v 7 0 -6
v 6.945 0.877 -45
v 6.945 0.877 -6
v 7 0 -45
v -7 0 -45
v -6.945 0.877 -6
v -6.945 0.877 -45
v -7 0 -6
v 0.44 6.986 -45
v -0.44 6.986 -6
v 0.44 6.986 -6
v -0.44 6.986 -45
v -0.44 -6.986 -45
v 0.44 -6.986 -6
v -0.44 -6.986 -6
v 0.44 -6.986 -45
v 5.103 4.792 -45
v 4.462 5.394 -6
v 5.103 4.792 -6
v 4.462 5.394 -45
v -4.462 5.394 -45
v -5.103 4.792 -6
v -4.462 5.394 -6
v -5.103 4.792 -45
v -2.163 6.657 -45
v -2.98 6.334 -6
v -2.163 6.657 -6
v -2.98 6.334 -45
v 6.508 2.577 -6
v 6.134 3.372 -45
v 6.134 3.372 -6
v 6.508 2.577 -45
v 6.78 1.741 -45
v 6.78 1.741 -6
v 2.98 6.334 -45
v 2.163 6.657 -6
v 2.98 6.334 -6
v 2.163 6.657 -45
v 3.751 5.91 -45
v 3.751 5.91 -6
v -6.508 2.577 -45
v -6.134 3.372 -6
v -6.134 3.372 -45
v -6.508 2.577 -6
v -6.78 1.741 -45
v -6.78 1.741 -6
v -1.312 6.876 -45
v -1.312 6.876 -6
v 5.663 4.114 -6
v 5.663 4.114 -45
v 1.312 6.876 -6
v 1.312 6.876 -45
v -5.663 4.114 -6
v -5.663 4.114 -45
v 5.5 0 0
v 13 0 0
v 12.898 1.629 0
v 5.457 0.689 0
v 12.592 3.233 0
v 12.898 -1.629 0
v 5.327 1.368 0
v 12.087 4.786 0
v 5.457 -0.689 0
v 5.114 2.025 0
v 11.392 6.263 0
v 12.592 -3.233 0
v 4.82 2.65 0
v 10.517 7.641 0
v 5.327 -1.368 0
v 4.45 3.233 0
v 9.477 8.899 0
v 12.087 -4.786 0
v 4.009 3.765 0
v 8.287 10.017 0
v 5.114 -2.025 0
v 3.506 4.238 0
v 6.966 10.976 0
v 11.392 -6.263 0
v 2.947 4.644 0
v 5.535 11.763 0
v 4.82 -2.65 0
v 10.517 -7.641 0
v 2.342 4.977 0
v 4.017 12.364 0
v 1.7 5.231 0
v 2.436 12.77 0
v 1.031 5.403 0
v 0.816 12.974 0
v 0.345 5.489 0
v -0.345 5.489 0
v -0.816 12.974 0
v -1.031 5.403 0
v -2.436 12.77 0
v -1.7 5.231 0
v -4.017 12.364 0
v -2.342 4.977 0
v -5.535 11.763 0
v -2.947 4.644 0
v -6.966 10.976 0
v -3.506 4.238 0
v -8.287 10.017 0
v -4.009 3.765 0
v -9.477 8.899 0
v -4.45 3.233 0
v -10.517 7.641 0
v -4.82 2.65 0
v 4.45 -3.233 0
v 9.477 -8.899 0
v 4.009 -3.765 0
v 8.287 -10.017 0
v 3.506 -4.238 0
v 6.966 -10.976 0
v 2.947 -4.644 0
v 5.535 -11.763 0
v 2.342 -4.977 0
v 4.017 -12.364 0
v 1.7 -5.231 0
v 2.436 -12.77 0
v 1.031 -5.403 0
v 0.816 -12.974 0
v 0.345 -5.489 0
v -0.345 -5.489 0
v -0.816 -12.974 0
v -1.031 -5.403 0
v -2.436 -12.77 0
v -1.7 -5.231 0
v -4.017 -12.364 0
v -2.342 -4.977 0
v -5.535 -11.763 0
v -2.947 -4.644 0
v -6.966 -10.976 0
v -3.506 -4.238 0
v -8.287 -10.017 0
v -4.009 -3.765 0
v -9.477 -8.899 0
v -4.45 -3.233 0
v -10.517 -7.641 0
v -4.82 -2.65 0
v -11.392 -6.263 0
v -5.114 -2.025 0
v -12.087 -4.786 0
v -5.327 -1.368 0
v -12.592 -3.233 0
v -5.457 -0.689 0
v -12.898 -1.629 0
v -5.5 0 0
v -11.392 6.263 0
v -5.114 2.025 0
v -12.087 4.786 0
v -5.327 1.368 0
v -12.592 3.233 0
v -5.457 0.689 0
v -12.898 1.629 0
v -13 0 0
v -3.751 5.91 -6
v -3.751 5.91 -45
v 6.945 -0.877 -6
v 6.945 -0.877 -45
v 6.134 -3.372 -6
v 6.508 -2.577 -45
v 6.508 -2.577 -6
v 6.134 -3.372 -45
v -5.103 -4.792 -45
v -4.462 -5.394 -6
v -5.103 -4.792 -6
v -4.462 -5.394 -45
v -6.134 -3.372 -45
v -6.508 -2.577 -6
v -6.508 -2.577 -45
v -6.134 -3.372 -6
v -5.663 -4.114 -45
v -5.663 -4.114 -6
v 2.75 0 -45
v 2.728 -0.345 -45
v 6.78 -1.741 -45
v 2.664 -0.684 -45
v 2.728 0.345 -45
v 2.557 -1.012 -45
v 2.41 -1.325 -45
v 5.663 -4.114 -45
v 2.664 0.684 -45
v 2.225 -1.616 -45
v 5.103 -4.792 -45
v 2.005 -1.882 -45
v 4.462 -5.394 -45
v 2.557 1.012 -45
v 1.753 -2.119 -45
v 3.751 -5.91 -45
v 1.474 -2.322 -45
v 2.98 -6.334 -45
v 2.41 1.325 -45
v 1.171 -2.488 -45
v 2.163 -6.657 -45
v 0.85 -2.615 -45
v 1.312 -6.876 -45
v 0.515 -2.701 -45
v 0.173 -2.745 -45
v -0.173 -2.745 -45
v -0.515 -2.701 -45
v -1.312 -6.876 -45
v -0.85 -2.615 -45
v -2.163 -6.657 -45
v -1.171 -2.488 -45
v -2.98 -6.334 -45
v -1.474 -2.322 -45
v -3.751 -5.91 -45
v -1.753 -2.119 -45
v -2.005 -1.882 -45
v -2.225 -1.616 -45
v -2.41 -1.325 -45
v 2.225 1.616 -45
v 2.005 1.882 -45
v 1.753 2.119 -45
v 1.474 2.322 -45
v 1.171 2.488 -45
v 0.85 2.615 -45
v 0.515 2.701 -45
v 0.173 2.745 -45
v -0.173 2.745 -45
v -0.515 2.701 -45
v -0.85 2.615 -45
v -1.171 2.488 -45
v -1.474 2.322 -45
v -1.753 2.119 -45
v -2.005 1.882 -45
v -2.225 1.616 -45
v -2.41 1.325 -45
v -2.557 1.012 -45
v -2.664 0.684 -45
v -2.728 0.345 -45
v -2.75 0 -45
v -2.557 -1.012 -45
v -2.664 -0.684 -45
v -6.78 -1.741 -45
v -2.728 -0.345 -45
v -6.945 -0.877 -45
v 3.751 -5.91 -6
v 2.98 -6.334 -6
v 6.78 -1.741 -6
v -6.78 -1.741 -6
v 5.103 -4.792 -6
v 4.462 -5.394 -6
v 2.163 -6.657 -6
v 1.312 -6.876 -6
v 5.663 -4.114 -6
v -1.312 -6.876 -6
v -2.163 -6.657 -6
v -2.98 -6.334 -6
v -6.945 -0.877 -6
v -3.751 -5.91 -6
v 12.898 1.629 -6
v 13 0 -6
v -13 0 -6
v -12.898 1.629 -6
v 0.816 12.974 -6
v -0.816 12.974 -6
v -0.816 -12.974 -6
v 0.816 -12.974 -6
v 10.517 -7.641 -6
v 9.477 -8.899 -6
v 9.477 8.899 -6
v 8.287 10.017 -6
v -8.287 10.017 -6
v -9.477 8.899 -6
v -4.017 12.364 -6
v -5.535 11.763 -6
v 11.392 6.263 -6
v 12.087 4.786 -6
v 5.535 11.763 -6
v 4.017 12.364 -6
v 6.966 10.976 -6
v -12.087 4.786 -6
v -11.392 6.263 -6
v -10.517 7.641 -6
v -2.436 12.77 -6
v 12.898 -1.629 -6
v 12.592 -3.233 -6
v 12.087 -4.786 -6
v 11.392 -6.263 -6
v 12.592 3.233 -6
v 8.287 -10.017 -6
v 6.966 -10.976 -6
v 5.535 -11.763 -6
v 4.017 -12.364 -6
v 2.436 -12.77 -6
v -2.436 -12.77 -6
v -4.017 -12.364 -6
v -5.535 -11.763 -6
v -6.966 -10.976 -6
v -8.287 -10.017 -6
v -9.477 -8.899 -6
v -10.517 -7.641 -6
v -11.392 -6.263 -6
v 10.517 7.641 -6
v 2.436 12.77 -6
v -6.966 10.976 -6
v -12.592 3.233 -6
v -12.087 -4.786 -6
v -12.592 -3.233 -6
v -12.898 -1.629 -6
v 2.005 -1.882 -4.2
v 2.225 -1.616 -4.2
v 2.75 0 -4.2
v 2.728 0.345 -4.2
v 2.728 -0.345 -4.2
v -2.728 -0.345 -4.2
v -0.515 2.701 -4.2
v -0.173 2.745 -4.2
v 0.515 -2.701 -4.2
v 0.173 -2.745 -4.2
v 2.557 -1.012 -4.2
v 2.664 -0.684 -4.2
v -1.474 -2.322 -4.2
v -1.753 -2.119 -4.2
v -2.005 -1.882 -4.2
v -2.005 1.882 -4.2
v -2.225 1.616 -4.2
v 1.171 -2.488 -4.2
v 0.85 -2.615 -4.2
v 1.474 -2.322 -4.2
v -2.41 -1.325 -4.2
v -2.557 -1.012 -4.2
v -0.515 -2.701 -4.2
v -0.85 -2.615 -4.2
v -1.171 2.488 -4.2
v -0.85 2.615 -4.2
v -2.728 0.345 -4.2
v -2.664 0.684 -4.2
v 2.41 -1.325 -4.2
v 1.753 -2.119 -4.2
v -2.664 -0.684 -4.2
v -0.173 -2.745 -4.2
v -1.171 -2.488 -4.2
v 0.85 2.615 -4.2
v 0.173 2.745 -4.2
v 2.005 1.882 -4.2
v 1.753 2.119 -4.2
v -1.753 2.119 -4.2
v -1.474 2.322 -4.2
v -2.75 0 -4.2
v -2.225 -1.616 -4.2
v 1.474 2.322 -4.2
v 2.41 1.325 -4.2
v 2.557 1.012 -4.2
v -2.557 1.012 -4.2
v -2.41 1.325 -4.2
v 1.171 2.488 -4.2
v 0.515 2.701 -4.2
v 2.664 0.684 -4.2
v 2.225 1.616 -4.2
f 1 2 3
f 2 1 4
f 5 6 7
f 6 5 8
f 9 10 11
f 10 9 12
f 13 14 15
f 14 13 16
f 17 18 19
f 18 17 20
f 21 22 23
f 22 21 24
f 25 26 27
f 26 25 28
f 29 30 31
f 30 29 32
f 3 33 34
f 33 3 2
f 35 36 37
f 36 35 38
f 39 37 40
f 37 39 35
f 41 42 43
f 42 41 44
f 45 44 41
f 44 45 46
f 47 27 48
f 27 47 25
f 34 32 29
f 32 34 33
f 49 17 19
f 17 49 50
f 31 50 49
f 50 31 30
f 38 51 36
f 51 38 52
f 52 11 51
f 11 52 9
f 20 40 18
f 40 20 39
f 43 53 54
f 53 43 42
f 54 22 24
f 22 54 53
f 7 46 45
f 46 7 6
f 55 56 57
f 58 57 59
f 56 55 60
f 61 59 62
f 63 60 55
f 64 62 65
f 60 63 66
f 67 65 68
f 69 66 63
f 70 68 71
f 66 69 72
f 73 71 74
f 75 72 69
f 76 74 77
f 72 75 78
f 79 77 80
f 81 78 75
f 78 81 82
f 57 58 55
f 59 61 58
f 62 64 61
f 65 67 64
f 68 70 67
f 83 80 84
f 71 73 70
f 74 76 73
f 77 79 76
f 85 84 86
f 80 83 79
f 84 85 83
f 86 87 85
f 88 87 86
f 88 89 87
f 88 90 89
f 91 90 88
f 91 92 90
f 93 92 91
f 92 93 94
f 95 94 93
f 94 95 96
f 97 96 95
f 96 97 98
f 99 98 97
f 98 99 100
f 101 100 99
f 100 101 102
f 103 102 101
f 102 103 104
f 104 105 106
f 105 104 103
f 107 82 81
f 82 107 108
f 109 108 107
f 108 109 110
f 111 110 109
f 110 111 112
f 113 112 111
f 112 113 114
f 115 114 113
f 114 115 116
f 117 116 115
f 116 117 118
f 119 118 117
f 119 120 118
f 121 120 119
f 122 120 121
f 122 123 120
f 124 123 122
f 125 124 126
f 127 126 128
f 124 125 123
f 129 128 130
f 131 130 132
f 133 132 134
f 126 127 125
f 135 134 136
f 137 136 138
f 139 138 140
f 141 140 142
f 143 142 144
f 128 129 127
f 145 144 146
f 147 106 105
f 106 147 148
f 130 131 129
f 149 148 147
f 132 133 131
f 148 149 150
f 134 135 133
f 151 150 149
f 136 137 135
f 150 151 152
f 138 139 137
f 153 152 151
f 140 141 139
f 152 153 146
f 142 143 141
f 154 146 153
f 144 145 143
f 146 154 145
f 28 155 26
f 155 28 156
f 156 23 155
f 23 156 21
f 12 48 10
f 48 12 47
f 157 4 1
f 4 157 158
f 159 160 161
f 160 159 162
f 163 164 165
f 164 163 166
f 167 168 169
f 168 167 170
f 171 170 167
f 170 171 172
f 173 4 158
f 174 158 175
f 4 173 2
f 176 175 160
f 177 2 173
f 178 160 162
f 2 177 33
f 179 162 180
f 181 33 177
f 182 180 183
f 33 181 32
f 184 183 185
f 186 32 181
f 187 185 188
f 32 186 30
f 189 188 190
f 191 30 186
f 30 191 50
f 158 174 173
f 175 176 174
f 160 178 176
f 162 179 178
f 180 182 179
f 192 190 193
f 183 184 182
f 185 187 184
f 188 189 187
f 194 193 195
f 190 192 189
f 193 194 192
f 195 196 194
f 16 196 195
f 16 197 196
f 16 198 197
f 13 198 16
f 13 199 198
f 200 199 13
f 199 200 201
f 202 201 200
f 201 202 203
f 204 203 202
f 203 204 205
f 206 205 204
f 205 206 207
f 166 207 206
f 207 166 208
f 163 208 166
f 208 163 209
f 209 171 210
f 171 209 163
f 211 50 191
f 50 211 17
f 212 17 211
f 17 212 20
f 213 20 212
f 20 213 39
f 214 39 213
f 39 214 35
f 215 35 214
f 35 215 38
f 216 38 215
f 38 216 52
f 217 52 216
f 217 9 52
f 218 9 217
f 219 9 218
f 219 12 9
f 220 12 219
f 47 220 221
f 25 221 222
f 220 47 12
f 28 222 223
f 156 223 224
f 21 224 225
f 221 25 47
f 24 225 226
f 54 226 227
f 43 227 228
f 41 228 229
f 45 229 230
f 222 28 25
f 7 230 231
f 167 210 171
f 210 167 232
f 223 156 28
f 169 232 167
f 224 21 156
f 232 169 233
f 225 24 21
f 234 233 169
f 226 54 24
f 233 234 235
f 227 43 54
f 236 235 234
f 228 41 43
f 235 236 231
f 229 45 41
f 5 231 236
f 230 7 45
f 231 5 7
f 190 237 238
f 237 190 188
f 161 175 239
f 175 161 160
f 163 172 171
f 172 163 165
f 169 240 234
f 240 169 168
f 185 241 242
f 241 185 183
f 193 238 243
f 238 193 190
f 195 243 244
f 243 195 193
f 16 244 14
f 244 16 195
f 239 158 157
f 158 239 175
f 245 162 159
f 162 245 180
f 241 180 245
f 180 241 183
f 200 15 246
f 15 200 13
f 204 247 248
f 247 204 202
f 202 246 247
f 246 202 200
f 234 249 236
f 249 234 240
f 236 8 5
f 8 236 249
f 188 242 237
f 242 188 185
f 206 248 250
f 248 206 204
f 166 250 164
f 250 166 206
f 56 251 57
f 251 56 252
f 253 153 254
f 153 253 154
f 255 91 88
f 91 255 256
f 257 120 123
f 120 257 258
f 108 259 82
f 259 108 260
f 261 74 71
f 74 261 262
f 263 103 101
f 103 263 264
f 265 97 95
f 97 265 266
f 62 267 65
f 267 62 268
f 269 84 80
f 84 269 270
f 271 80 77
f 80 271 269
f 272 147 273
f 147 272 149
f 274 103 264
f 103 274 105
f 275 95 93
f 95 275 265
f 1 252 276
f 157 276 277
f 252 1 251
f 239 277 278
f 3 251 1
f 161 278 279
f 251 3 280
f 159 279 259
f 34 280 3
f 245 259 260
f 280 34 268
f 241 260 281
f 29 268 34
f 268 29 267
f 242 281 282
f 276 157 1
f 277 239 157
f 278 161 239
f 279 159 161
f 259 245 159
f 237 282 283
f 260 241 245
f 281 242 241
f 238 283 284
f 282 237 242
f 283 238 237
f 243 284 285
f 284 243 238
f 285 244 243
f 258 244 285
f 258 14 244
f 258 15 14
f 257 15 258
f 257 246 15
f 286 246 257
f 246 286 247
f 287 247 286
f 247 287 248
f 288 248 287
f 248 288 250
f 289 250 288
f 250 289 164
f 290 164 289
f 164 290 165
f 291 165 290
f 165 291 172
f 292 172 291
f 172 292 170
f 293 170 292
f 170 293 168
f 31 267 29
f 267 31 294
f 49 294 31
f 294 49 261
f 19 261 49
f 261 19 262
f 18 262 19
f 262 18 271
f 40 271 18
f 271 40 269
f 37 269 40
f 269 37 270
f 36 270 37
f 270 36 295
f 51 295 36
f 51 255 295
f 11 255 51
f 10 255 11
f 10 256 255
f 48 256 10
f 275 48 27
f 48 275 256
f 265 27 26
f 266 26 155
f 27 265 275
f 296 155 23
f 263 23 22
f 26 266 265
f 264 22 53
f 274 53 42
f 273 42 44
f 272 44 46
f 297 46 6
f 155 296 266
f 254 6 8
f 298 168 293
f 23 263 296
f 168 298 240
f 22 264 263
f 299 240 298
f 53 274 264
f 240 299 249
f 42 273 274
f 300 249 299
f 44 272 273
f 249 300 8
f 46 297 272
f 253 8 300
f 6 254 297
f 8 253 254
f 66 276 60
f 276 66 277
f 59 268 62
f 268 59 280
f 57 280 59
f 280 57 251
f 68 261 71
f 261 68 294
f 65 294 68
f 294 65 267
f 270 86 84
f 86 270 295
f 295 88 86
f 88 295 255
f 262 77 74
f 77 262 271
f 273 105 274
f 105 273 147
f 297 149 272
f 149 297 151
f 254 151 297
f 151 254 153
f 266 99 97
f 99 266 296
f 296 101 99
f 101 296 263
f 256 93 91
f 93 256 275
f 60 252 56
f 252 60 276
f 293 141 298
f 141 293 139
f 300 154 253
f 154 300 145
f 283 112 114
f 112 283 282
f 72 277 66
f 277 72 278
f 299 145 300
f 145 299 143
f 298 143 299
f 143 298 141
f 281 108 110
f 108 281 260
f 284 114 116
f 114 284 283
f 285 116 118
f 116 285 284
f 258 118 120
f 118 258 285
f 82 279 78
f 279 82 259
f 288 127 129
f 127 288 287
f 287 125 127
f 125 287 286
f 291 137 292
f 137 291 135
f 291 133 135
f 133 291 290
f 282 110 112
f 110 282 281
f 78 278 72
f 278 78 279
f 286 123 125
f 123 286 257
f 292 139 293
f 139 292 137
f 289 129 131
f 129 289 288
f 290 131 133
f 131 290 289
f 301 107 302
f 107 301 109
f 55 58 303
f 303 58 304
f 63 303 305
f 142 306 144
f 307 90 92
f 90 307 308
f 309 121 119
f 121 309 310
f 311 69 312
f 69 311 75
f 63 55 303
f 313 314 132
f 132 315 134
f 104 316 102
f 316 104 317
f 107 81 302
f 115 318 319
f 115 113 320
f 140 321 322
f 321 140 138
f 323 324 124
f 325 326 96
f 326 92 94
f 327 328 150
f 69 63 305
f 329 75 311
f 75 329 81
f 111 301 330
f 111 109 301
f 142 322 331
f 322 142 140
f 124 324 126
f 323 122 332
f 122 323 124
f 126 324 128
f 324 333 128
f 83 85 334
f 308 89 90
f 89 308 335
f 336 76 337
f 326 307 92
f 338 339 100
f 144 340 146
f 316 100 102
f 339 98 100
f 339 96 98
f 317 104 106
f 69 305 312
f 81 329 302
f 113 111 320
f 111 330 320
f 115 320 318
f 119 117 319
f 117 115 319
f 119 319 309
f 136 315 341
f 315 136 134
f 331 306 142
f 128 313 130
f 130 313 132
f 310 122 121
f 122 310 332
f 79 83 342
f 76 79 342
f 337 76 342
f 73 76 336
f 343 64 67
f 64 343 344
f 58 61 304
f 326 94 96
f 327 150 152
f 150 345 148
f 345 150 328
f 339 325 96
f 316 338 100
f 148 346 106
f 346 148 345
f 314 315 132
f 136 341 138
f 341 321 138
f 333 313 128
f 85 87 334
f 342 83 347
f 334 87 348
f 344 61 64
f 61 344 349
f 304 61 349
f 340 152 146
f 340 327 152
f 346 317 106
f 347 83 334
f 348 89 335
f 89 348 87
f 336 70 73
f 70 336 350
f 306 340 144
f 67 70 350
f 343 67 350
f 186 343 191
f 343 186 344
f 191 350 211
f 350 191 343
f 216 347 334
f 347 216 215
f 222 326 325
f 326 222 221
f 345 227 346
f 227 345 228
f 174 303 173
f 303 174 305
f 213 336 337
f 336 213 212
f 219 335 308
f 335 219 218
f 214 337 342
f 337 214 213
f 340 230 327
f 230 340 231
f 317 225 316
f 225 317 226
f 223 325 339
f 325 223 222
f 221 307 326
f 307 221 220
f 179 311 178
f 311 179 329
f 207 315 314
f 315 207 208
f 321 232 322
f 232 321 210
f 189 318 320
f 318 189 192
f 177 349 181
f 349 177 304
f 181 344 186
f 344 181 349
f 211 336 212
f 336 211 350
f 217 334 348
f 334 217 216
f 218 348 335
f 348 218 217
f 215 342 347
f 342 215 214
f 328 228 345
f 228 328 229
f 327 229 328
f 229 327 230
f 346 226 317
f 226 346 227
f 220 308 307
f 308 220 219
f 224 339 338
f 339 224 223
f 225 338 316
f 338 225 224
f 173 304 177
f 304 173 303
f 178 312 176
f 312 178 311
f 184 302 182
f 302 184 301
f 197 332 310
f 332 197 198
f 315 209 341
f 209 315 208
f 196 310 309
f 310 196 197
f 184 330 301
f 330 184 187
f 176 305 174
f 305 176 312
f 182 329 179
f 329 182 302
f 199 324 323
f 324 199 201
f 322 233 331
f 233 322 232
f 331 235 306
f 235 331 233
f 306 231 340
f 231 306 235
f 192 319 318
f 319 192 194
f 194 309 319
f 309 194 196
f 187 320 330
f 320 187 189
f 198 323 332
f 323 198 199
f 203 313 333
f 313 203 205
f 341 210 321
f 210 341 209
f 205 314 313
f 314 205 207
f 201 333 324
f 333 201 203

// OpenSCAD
$fn = 50;


difference() {
	union() {
		translate(v = [0, 0, -45.0000000000]) {
			cylinder(h = 45, r = 7.0000000000);
		}
		translate(v = [0, 0, -6.0000000000]) {
			cylinder(h = 6, r = 13.0000000000);
		}
	}
	union() {
		translate(v = [0, 0, 0]) {
			rotate(a = [0, 0, 0]) {
				difference() {
					union() {
						#translate(v = [0, 0, -45.0000000000]) {
							cylinder(h = 45, r = 2.2500000000);
						}
						#translate(v = [0, 0, -4.2000000000]) {
							cylinder(h = 4.2000000000, r1 = 2.7500000000, r2 = 5.5000000000);
						}
						#translate(v = [0, 0, -45.0000000000]) {
							cylinder(h = 45, r = 2.7500000000);
						}
						#translate(v = [0, 0, -45.0000000000]) {
							cylinder(h = 45, r = 2.2500000000);
						}
					}
					union();
				}
			}
		}
	}
}
